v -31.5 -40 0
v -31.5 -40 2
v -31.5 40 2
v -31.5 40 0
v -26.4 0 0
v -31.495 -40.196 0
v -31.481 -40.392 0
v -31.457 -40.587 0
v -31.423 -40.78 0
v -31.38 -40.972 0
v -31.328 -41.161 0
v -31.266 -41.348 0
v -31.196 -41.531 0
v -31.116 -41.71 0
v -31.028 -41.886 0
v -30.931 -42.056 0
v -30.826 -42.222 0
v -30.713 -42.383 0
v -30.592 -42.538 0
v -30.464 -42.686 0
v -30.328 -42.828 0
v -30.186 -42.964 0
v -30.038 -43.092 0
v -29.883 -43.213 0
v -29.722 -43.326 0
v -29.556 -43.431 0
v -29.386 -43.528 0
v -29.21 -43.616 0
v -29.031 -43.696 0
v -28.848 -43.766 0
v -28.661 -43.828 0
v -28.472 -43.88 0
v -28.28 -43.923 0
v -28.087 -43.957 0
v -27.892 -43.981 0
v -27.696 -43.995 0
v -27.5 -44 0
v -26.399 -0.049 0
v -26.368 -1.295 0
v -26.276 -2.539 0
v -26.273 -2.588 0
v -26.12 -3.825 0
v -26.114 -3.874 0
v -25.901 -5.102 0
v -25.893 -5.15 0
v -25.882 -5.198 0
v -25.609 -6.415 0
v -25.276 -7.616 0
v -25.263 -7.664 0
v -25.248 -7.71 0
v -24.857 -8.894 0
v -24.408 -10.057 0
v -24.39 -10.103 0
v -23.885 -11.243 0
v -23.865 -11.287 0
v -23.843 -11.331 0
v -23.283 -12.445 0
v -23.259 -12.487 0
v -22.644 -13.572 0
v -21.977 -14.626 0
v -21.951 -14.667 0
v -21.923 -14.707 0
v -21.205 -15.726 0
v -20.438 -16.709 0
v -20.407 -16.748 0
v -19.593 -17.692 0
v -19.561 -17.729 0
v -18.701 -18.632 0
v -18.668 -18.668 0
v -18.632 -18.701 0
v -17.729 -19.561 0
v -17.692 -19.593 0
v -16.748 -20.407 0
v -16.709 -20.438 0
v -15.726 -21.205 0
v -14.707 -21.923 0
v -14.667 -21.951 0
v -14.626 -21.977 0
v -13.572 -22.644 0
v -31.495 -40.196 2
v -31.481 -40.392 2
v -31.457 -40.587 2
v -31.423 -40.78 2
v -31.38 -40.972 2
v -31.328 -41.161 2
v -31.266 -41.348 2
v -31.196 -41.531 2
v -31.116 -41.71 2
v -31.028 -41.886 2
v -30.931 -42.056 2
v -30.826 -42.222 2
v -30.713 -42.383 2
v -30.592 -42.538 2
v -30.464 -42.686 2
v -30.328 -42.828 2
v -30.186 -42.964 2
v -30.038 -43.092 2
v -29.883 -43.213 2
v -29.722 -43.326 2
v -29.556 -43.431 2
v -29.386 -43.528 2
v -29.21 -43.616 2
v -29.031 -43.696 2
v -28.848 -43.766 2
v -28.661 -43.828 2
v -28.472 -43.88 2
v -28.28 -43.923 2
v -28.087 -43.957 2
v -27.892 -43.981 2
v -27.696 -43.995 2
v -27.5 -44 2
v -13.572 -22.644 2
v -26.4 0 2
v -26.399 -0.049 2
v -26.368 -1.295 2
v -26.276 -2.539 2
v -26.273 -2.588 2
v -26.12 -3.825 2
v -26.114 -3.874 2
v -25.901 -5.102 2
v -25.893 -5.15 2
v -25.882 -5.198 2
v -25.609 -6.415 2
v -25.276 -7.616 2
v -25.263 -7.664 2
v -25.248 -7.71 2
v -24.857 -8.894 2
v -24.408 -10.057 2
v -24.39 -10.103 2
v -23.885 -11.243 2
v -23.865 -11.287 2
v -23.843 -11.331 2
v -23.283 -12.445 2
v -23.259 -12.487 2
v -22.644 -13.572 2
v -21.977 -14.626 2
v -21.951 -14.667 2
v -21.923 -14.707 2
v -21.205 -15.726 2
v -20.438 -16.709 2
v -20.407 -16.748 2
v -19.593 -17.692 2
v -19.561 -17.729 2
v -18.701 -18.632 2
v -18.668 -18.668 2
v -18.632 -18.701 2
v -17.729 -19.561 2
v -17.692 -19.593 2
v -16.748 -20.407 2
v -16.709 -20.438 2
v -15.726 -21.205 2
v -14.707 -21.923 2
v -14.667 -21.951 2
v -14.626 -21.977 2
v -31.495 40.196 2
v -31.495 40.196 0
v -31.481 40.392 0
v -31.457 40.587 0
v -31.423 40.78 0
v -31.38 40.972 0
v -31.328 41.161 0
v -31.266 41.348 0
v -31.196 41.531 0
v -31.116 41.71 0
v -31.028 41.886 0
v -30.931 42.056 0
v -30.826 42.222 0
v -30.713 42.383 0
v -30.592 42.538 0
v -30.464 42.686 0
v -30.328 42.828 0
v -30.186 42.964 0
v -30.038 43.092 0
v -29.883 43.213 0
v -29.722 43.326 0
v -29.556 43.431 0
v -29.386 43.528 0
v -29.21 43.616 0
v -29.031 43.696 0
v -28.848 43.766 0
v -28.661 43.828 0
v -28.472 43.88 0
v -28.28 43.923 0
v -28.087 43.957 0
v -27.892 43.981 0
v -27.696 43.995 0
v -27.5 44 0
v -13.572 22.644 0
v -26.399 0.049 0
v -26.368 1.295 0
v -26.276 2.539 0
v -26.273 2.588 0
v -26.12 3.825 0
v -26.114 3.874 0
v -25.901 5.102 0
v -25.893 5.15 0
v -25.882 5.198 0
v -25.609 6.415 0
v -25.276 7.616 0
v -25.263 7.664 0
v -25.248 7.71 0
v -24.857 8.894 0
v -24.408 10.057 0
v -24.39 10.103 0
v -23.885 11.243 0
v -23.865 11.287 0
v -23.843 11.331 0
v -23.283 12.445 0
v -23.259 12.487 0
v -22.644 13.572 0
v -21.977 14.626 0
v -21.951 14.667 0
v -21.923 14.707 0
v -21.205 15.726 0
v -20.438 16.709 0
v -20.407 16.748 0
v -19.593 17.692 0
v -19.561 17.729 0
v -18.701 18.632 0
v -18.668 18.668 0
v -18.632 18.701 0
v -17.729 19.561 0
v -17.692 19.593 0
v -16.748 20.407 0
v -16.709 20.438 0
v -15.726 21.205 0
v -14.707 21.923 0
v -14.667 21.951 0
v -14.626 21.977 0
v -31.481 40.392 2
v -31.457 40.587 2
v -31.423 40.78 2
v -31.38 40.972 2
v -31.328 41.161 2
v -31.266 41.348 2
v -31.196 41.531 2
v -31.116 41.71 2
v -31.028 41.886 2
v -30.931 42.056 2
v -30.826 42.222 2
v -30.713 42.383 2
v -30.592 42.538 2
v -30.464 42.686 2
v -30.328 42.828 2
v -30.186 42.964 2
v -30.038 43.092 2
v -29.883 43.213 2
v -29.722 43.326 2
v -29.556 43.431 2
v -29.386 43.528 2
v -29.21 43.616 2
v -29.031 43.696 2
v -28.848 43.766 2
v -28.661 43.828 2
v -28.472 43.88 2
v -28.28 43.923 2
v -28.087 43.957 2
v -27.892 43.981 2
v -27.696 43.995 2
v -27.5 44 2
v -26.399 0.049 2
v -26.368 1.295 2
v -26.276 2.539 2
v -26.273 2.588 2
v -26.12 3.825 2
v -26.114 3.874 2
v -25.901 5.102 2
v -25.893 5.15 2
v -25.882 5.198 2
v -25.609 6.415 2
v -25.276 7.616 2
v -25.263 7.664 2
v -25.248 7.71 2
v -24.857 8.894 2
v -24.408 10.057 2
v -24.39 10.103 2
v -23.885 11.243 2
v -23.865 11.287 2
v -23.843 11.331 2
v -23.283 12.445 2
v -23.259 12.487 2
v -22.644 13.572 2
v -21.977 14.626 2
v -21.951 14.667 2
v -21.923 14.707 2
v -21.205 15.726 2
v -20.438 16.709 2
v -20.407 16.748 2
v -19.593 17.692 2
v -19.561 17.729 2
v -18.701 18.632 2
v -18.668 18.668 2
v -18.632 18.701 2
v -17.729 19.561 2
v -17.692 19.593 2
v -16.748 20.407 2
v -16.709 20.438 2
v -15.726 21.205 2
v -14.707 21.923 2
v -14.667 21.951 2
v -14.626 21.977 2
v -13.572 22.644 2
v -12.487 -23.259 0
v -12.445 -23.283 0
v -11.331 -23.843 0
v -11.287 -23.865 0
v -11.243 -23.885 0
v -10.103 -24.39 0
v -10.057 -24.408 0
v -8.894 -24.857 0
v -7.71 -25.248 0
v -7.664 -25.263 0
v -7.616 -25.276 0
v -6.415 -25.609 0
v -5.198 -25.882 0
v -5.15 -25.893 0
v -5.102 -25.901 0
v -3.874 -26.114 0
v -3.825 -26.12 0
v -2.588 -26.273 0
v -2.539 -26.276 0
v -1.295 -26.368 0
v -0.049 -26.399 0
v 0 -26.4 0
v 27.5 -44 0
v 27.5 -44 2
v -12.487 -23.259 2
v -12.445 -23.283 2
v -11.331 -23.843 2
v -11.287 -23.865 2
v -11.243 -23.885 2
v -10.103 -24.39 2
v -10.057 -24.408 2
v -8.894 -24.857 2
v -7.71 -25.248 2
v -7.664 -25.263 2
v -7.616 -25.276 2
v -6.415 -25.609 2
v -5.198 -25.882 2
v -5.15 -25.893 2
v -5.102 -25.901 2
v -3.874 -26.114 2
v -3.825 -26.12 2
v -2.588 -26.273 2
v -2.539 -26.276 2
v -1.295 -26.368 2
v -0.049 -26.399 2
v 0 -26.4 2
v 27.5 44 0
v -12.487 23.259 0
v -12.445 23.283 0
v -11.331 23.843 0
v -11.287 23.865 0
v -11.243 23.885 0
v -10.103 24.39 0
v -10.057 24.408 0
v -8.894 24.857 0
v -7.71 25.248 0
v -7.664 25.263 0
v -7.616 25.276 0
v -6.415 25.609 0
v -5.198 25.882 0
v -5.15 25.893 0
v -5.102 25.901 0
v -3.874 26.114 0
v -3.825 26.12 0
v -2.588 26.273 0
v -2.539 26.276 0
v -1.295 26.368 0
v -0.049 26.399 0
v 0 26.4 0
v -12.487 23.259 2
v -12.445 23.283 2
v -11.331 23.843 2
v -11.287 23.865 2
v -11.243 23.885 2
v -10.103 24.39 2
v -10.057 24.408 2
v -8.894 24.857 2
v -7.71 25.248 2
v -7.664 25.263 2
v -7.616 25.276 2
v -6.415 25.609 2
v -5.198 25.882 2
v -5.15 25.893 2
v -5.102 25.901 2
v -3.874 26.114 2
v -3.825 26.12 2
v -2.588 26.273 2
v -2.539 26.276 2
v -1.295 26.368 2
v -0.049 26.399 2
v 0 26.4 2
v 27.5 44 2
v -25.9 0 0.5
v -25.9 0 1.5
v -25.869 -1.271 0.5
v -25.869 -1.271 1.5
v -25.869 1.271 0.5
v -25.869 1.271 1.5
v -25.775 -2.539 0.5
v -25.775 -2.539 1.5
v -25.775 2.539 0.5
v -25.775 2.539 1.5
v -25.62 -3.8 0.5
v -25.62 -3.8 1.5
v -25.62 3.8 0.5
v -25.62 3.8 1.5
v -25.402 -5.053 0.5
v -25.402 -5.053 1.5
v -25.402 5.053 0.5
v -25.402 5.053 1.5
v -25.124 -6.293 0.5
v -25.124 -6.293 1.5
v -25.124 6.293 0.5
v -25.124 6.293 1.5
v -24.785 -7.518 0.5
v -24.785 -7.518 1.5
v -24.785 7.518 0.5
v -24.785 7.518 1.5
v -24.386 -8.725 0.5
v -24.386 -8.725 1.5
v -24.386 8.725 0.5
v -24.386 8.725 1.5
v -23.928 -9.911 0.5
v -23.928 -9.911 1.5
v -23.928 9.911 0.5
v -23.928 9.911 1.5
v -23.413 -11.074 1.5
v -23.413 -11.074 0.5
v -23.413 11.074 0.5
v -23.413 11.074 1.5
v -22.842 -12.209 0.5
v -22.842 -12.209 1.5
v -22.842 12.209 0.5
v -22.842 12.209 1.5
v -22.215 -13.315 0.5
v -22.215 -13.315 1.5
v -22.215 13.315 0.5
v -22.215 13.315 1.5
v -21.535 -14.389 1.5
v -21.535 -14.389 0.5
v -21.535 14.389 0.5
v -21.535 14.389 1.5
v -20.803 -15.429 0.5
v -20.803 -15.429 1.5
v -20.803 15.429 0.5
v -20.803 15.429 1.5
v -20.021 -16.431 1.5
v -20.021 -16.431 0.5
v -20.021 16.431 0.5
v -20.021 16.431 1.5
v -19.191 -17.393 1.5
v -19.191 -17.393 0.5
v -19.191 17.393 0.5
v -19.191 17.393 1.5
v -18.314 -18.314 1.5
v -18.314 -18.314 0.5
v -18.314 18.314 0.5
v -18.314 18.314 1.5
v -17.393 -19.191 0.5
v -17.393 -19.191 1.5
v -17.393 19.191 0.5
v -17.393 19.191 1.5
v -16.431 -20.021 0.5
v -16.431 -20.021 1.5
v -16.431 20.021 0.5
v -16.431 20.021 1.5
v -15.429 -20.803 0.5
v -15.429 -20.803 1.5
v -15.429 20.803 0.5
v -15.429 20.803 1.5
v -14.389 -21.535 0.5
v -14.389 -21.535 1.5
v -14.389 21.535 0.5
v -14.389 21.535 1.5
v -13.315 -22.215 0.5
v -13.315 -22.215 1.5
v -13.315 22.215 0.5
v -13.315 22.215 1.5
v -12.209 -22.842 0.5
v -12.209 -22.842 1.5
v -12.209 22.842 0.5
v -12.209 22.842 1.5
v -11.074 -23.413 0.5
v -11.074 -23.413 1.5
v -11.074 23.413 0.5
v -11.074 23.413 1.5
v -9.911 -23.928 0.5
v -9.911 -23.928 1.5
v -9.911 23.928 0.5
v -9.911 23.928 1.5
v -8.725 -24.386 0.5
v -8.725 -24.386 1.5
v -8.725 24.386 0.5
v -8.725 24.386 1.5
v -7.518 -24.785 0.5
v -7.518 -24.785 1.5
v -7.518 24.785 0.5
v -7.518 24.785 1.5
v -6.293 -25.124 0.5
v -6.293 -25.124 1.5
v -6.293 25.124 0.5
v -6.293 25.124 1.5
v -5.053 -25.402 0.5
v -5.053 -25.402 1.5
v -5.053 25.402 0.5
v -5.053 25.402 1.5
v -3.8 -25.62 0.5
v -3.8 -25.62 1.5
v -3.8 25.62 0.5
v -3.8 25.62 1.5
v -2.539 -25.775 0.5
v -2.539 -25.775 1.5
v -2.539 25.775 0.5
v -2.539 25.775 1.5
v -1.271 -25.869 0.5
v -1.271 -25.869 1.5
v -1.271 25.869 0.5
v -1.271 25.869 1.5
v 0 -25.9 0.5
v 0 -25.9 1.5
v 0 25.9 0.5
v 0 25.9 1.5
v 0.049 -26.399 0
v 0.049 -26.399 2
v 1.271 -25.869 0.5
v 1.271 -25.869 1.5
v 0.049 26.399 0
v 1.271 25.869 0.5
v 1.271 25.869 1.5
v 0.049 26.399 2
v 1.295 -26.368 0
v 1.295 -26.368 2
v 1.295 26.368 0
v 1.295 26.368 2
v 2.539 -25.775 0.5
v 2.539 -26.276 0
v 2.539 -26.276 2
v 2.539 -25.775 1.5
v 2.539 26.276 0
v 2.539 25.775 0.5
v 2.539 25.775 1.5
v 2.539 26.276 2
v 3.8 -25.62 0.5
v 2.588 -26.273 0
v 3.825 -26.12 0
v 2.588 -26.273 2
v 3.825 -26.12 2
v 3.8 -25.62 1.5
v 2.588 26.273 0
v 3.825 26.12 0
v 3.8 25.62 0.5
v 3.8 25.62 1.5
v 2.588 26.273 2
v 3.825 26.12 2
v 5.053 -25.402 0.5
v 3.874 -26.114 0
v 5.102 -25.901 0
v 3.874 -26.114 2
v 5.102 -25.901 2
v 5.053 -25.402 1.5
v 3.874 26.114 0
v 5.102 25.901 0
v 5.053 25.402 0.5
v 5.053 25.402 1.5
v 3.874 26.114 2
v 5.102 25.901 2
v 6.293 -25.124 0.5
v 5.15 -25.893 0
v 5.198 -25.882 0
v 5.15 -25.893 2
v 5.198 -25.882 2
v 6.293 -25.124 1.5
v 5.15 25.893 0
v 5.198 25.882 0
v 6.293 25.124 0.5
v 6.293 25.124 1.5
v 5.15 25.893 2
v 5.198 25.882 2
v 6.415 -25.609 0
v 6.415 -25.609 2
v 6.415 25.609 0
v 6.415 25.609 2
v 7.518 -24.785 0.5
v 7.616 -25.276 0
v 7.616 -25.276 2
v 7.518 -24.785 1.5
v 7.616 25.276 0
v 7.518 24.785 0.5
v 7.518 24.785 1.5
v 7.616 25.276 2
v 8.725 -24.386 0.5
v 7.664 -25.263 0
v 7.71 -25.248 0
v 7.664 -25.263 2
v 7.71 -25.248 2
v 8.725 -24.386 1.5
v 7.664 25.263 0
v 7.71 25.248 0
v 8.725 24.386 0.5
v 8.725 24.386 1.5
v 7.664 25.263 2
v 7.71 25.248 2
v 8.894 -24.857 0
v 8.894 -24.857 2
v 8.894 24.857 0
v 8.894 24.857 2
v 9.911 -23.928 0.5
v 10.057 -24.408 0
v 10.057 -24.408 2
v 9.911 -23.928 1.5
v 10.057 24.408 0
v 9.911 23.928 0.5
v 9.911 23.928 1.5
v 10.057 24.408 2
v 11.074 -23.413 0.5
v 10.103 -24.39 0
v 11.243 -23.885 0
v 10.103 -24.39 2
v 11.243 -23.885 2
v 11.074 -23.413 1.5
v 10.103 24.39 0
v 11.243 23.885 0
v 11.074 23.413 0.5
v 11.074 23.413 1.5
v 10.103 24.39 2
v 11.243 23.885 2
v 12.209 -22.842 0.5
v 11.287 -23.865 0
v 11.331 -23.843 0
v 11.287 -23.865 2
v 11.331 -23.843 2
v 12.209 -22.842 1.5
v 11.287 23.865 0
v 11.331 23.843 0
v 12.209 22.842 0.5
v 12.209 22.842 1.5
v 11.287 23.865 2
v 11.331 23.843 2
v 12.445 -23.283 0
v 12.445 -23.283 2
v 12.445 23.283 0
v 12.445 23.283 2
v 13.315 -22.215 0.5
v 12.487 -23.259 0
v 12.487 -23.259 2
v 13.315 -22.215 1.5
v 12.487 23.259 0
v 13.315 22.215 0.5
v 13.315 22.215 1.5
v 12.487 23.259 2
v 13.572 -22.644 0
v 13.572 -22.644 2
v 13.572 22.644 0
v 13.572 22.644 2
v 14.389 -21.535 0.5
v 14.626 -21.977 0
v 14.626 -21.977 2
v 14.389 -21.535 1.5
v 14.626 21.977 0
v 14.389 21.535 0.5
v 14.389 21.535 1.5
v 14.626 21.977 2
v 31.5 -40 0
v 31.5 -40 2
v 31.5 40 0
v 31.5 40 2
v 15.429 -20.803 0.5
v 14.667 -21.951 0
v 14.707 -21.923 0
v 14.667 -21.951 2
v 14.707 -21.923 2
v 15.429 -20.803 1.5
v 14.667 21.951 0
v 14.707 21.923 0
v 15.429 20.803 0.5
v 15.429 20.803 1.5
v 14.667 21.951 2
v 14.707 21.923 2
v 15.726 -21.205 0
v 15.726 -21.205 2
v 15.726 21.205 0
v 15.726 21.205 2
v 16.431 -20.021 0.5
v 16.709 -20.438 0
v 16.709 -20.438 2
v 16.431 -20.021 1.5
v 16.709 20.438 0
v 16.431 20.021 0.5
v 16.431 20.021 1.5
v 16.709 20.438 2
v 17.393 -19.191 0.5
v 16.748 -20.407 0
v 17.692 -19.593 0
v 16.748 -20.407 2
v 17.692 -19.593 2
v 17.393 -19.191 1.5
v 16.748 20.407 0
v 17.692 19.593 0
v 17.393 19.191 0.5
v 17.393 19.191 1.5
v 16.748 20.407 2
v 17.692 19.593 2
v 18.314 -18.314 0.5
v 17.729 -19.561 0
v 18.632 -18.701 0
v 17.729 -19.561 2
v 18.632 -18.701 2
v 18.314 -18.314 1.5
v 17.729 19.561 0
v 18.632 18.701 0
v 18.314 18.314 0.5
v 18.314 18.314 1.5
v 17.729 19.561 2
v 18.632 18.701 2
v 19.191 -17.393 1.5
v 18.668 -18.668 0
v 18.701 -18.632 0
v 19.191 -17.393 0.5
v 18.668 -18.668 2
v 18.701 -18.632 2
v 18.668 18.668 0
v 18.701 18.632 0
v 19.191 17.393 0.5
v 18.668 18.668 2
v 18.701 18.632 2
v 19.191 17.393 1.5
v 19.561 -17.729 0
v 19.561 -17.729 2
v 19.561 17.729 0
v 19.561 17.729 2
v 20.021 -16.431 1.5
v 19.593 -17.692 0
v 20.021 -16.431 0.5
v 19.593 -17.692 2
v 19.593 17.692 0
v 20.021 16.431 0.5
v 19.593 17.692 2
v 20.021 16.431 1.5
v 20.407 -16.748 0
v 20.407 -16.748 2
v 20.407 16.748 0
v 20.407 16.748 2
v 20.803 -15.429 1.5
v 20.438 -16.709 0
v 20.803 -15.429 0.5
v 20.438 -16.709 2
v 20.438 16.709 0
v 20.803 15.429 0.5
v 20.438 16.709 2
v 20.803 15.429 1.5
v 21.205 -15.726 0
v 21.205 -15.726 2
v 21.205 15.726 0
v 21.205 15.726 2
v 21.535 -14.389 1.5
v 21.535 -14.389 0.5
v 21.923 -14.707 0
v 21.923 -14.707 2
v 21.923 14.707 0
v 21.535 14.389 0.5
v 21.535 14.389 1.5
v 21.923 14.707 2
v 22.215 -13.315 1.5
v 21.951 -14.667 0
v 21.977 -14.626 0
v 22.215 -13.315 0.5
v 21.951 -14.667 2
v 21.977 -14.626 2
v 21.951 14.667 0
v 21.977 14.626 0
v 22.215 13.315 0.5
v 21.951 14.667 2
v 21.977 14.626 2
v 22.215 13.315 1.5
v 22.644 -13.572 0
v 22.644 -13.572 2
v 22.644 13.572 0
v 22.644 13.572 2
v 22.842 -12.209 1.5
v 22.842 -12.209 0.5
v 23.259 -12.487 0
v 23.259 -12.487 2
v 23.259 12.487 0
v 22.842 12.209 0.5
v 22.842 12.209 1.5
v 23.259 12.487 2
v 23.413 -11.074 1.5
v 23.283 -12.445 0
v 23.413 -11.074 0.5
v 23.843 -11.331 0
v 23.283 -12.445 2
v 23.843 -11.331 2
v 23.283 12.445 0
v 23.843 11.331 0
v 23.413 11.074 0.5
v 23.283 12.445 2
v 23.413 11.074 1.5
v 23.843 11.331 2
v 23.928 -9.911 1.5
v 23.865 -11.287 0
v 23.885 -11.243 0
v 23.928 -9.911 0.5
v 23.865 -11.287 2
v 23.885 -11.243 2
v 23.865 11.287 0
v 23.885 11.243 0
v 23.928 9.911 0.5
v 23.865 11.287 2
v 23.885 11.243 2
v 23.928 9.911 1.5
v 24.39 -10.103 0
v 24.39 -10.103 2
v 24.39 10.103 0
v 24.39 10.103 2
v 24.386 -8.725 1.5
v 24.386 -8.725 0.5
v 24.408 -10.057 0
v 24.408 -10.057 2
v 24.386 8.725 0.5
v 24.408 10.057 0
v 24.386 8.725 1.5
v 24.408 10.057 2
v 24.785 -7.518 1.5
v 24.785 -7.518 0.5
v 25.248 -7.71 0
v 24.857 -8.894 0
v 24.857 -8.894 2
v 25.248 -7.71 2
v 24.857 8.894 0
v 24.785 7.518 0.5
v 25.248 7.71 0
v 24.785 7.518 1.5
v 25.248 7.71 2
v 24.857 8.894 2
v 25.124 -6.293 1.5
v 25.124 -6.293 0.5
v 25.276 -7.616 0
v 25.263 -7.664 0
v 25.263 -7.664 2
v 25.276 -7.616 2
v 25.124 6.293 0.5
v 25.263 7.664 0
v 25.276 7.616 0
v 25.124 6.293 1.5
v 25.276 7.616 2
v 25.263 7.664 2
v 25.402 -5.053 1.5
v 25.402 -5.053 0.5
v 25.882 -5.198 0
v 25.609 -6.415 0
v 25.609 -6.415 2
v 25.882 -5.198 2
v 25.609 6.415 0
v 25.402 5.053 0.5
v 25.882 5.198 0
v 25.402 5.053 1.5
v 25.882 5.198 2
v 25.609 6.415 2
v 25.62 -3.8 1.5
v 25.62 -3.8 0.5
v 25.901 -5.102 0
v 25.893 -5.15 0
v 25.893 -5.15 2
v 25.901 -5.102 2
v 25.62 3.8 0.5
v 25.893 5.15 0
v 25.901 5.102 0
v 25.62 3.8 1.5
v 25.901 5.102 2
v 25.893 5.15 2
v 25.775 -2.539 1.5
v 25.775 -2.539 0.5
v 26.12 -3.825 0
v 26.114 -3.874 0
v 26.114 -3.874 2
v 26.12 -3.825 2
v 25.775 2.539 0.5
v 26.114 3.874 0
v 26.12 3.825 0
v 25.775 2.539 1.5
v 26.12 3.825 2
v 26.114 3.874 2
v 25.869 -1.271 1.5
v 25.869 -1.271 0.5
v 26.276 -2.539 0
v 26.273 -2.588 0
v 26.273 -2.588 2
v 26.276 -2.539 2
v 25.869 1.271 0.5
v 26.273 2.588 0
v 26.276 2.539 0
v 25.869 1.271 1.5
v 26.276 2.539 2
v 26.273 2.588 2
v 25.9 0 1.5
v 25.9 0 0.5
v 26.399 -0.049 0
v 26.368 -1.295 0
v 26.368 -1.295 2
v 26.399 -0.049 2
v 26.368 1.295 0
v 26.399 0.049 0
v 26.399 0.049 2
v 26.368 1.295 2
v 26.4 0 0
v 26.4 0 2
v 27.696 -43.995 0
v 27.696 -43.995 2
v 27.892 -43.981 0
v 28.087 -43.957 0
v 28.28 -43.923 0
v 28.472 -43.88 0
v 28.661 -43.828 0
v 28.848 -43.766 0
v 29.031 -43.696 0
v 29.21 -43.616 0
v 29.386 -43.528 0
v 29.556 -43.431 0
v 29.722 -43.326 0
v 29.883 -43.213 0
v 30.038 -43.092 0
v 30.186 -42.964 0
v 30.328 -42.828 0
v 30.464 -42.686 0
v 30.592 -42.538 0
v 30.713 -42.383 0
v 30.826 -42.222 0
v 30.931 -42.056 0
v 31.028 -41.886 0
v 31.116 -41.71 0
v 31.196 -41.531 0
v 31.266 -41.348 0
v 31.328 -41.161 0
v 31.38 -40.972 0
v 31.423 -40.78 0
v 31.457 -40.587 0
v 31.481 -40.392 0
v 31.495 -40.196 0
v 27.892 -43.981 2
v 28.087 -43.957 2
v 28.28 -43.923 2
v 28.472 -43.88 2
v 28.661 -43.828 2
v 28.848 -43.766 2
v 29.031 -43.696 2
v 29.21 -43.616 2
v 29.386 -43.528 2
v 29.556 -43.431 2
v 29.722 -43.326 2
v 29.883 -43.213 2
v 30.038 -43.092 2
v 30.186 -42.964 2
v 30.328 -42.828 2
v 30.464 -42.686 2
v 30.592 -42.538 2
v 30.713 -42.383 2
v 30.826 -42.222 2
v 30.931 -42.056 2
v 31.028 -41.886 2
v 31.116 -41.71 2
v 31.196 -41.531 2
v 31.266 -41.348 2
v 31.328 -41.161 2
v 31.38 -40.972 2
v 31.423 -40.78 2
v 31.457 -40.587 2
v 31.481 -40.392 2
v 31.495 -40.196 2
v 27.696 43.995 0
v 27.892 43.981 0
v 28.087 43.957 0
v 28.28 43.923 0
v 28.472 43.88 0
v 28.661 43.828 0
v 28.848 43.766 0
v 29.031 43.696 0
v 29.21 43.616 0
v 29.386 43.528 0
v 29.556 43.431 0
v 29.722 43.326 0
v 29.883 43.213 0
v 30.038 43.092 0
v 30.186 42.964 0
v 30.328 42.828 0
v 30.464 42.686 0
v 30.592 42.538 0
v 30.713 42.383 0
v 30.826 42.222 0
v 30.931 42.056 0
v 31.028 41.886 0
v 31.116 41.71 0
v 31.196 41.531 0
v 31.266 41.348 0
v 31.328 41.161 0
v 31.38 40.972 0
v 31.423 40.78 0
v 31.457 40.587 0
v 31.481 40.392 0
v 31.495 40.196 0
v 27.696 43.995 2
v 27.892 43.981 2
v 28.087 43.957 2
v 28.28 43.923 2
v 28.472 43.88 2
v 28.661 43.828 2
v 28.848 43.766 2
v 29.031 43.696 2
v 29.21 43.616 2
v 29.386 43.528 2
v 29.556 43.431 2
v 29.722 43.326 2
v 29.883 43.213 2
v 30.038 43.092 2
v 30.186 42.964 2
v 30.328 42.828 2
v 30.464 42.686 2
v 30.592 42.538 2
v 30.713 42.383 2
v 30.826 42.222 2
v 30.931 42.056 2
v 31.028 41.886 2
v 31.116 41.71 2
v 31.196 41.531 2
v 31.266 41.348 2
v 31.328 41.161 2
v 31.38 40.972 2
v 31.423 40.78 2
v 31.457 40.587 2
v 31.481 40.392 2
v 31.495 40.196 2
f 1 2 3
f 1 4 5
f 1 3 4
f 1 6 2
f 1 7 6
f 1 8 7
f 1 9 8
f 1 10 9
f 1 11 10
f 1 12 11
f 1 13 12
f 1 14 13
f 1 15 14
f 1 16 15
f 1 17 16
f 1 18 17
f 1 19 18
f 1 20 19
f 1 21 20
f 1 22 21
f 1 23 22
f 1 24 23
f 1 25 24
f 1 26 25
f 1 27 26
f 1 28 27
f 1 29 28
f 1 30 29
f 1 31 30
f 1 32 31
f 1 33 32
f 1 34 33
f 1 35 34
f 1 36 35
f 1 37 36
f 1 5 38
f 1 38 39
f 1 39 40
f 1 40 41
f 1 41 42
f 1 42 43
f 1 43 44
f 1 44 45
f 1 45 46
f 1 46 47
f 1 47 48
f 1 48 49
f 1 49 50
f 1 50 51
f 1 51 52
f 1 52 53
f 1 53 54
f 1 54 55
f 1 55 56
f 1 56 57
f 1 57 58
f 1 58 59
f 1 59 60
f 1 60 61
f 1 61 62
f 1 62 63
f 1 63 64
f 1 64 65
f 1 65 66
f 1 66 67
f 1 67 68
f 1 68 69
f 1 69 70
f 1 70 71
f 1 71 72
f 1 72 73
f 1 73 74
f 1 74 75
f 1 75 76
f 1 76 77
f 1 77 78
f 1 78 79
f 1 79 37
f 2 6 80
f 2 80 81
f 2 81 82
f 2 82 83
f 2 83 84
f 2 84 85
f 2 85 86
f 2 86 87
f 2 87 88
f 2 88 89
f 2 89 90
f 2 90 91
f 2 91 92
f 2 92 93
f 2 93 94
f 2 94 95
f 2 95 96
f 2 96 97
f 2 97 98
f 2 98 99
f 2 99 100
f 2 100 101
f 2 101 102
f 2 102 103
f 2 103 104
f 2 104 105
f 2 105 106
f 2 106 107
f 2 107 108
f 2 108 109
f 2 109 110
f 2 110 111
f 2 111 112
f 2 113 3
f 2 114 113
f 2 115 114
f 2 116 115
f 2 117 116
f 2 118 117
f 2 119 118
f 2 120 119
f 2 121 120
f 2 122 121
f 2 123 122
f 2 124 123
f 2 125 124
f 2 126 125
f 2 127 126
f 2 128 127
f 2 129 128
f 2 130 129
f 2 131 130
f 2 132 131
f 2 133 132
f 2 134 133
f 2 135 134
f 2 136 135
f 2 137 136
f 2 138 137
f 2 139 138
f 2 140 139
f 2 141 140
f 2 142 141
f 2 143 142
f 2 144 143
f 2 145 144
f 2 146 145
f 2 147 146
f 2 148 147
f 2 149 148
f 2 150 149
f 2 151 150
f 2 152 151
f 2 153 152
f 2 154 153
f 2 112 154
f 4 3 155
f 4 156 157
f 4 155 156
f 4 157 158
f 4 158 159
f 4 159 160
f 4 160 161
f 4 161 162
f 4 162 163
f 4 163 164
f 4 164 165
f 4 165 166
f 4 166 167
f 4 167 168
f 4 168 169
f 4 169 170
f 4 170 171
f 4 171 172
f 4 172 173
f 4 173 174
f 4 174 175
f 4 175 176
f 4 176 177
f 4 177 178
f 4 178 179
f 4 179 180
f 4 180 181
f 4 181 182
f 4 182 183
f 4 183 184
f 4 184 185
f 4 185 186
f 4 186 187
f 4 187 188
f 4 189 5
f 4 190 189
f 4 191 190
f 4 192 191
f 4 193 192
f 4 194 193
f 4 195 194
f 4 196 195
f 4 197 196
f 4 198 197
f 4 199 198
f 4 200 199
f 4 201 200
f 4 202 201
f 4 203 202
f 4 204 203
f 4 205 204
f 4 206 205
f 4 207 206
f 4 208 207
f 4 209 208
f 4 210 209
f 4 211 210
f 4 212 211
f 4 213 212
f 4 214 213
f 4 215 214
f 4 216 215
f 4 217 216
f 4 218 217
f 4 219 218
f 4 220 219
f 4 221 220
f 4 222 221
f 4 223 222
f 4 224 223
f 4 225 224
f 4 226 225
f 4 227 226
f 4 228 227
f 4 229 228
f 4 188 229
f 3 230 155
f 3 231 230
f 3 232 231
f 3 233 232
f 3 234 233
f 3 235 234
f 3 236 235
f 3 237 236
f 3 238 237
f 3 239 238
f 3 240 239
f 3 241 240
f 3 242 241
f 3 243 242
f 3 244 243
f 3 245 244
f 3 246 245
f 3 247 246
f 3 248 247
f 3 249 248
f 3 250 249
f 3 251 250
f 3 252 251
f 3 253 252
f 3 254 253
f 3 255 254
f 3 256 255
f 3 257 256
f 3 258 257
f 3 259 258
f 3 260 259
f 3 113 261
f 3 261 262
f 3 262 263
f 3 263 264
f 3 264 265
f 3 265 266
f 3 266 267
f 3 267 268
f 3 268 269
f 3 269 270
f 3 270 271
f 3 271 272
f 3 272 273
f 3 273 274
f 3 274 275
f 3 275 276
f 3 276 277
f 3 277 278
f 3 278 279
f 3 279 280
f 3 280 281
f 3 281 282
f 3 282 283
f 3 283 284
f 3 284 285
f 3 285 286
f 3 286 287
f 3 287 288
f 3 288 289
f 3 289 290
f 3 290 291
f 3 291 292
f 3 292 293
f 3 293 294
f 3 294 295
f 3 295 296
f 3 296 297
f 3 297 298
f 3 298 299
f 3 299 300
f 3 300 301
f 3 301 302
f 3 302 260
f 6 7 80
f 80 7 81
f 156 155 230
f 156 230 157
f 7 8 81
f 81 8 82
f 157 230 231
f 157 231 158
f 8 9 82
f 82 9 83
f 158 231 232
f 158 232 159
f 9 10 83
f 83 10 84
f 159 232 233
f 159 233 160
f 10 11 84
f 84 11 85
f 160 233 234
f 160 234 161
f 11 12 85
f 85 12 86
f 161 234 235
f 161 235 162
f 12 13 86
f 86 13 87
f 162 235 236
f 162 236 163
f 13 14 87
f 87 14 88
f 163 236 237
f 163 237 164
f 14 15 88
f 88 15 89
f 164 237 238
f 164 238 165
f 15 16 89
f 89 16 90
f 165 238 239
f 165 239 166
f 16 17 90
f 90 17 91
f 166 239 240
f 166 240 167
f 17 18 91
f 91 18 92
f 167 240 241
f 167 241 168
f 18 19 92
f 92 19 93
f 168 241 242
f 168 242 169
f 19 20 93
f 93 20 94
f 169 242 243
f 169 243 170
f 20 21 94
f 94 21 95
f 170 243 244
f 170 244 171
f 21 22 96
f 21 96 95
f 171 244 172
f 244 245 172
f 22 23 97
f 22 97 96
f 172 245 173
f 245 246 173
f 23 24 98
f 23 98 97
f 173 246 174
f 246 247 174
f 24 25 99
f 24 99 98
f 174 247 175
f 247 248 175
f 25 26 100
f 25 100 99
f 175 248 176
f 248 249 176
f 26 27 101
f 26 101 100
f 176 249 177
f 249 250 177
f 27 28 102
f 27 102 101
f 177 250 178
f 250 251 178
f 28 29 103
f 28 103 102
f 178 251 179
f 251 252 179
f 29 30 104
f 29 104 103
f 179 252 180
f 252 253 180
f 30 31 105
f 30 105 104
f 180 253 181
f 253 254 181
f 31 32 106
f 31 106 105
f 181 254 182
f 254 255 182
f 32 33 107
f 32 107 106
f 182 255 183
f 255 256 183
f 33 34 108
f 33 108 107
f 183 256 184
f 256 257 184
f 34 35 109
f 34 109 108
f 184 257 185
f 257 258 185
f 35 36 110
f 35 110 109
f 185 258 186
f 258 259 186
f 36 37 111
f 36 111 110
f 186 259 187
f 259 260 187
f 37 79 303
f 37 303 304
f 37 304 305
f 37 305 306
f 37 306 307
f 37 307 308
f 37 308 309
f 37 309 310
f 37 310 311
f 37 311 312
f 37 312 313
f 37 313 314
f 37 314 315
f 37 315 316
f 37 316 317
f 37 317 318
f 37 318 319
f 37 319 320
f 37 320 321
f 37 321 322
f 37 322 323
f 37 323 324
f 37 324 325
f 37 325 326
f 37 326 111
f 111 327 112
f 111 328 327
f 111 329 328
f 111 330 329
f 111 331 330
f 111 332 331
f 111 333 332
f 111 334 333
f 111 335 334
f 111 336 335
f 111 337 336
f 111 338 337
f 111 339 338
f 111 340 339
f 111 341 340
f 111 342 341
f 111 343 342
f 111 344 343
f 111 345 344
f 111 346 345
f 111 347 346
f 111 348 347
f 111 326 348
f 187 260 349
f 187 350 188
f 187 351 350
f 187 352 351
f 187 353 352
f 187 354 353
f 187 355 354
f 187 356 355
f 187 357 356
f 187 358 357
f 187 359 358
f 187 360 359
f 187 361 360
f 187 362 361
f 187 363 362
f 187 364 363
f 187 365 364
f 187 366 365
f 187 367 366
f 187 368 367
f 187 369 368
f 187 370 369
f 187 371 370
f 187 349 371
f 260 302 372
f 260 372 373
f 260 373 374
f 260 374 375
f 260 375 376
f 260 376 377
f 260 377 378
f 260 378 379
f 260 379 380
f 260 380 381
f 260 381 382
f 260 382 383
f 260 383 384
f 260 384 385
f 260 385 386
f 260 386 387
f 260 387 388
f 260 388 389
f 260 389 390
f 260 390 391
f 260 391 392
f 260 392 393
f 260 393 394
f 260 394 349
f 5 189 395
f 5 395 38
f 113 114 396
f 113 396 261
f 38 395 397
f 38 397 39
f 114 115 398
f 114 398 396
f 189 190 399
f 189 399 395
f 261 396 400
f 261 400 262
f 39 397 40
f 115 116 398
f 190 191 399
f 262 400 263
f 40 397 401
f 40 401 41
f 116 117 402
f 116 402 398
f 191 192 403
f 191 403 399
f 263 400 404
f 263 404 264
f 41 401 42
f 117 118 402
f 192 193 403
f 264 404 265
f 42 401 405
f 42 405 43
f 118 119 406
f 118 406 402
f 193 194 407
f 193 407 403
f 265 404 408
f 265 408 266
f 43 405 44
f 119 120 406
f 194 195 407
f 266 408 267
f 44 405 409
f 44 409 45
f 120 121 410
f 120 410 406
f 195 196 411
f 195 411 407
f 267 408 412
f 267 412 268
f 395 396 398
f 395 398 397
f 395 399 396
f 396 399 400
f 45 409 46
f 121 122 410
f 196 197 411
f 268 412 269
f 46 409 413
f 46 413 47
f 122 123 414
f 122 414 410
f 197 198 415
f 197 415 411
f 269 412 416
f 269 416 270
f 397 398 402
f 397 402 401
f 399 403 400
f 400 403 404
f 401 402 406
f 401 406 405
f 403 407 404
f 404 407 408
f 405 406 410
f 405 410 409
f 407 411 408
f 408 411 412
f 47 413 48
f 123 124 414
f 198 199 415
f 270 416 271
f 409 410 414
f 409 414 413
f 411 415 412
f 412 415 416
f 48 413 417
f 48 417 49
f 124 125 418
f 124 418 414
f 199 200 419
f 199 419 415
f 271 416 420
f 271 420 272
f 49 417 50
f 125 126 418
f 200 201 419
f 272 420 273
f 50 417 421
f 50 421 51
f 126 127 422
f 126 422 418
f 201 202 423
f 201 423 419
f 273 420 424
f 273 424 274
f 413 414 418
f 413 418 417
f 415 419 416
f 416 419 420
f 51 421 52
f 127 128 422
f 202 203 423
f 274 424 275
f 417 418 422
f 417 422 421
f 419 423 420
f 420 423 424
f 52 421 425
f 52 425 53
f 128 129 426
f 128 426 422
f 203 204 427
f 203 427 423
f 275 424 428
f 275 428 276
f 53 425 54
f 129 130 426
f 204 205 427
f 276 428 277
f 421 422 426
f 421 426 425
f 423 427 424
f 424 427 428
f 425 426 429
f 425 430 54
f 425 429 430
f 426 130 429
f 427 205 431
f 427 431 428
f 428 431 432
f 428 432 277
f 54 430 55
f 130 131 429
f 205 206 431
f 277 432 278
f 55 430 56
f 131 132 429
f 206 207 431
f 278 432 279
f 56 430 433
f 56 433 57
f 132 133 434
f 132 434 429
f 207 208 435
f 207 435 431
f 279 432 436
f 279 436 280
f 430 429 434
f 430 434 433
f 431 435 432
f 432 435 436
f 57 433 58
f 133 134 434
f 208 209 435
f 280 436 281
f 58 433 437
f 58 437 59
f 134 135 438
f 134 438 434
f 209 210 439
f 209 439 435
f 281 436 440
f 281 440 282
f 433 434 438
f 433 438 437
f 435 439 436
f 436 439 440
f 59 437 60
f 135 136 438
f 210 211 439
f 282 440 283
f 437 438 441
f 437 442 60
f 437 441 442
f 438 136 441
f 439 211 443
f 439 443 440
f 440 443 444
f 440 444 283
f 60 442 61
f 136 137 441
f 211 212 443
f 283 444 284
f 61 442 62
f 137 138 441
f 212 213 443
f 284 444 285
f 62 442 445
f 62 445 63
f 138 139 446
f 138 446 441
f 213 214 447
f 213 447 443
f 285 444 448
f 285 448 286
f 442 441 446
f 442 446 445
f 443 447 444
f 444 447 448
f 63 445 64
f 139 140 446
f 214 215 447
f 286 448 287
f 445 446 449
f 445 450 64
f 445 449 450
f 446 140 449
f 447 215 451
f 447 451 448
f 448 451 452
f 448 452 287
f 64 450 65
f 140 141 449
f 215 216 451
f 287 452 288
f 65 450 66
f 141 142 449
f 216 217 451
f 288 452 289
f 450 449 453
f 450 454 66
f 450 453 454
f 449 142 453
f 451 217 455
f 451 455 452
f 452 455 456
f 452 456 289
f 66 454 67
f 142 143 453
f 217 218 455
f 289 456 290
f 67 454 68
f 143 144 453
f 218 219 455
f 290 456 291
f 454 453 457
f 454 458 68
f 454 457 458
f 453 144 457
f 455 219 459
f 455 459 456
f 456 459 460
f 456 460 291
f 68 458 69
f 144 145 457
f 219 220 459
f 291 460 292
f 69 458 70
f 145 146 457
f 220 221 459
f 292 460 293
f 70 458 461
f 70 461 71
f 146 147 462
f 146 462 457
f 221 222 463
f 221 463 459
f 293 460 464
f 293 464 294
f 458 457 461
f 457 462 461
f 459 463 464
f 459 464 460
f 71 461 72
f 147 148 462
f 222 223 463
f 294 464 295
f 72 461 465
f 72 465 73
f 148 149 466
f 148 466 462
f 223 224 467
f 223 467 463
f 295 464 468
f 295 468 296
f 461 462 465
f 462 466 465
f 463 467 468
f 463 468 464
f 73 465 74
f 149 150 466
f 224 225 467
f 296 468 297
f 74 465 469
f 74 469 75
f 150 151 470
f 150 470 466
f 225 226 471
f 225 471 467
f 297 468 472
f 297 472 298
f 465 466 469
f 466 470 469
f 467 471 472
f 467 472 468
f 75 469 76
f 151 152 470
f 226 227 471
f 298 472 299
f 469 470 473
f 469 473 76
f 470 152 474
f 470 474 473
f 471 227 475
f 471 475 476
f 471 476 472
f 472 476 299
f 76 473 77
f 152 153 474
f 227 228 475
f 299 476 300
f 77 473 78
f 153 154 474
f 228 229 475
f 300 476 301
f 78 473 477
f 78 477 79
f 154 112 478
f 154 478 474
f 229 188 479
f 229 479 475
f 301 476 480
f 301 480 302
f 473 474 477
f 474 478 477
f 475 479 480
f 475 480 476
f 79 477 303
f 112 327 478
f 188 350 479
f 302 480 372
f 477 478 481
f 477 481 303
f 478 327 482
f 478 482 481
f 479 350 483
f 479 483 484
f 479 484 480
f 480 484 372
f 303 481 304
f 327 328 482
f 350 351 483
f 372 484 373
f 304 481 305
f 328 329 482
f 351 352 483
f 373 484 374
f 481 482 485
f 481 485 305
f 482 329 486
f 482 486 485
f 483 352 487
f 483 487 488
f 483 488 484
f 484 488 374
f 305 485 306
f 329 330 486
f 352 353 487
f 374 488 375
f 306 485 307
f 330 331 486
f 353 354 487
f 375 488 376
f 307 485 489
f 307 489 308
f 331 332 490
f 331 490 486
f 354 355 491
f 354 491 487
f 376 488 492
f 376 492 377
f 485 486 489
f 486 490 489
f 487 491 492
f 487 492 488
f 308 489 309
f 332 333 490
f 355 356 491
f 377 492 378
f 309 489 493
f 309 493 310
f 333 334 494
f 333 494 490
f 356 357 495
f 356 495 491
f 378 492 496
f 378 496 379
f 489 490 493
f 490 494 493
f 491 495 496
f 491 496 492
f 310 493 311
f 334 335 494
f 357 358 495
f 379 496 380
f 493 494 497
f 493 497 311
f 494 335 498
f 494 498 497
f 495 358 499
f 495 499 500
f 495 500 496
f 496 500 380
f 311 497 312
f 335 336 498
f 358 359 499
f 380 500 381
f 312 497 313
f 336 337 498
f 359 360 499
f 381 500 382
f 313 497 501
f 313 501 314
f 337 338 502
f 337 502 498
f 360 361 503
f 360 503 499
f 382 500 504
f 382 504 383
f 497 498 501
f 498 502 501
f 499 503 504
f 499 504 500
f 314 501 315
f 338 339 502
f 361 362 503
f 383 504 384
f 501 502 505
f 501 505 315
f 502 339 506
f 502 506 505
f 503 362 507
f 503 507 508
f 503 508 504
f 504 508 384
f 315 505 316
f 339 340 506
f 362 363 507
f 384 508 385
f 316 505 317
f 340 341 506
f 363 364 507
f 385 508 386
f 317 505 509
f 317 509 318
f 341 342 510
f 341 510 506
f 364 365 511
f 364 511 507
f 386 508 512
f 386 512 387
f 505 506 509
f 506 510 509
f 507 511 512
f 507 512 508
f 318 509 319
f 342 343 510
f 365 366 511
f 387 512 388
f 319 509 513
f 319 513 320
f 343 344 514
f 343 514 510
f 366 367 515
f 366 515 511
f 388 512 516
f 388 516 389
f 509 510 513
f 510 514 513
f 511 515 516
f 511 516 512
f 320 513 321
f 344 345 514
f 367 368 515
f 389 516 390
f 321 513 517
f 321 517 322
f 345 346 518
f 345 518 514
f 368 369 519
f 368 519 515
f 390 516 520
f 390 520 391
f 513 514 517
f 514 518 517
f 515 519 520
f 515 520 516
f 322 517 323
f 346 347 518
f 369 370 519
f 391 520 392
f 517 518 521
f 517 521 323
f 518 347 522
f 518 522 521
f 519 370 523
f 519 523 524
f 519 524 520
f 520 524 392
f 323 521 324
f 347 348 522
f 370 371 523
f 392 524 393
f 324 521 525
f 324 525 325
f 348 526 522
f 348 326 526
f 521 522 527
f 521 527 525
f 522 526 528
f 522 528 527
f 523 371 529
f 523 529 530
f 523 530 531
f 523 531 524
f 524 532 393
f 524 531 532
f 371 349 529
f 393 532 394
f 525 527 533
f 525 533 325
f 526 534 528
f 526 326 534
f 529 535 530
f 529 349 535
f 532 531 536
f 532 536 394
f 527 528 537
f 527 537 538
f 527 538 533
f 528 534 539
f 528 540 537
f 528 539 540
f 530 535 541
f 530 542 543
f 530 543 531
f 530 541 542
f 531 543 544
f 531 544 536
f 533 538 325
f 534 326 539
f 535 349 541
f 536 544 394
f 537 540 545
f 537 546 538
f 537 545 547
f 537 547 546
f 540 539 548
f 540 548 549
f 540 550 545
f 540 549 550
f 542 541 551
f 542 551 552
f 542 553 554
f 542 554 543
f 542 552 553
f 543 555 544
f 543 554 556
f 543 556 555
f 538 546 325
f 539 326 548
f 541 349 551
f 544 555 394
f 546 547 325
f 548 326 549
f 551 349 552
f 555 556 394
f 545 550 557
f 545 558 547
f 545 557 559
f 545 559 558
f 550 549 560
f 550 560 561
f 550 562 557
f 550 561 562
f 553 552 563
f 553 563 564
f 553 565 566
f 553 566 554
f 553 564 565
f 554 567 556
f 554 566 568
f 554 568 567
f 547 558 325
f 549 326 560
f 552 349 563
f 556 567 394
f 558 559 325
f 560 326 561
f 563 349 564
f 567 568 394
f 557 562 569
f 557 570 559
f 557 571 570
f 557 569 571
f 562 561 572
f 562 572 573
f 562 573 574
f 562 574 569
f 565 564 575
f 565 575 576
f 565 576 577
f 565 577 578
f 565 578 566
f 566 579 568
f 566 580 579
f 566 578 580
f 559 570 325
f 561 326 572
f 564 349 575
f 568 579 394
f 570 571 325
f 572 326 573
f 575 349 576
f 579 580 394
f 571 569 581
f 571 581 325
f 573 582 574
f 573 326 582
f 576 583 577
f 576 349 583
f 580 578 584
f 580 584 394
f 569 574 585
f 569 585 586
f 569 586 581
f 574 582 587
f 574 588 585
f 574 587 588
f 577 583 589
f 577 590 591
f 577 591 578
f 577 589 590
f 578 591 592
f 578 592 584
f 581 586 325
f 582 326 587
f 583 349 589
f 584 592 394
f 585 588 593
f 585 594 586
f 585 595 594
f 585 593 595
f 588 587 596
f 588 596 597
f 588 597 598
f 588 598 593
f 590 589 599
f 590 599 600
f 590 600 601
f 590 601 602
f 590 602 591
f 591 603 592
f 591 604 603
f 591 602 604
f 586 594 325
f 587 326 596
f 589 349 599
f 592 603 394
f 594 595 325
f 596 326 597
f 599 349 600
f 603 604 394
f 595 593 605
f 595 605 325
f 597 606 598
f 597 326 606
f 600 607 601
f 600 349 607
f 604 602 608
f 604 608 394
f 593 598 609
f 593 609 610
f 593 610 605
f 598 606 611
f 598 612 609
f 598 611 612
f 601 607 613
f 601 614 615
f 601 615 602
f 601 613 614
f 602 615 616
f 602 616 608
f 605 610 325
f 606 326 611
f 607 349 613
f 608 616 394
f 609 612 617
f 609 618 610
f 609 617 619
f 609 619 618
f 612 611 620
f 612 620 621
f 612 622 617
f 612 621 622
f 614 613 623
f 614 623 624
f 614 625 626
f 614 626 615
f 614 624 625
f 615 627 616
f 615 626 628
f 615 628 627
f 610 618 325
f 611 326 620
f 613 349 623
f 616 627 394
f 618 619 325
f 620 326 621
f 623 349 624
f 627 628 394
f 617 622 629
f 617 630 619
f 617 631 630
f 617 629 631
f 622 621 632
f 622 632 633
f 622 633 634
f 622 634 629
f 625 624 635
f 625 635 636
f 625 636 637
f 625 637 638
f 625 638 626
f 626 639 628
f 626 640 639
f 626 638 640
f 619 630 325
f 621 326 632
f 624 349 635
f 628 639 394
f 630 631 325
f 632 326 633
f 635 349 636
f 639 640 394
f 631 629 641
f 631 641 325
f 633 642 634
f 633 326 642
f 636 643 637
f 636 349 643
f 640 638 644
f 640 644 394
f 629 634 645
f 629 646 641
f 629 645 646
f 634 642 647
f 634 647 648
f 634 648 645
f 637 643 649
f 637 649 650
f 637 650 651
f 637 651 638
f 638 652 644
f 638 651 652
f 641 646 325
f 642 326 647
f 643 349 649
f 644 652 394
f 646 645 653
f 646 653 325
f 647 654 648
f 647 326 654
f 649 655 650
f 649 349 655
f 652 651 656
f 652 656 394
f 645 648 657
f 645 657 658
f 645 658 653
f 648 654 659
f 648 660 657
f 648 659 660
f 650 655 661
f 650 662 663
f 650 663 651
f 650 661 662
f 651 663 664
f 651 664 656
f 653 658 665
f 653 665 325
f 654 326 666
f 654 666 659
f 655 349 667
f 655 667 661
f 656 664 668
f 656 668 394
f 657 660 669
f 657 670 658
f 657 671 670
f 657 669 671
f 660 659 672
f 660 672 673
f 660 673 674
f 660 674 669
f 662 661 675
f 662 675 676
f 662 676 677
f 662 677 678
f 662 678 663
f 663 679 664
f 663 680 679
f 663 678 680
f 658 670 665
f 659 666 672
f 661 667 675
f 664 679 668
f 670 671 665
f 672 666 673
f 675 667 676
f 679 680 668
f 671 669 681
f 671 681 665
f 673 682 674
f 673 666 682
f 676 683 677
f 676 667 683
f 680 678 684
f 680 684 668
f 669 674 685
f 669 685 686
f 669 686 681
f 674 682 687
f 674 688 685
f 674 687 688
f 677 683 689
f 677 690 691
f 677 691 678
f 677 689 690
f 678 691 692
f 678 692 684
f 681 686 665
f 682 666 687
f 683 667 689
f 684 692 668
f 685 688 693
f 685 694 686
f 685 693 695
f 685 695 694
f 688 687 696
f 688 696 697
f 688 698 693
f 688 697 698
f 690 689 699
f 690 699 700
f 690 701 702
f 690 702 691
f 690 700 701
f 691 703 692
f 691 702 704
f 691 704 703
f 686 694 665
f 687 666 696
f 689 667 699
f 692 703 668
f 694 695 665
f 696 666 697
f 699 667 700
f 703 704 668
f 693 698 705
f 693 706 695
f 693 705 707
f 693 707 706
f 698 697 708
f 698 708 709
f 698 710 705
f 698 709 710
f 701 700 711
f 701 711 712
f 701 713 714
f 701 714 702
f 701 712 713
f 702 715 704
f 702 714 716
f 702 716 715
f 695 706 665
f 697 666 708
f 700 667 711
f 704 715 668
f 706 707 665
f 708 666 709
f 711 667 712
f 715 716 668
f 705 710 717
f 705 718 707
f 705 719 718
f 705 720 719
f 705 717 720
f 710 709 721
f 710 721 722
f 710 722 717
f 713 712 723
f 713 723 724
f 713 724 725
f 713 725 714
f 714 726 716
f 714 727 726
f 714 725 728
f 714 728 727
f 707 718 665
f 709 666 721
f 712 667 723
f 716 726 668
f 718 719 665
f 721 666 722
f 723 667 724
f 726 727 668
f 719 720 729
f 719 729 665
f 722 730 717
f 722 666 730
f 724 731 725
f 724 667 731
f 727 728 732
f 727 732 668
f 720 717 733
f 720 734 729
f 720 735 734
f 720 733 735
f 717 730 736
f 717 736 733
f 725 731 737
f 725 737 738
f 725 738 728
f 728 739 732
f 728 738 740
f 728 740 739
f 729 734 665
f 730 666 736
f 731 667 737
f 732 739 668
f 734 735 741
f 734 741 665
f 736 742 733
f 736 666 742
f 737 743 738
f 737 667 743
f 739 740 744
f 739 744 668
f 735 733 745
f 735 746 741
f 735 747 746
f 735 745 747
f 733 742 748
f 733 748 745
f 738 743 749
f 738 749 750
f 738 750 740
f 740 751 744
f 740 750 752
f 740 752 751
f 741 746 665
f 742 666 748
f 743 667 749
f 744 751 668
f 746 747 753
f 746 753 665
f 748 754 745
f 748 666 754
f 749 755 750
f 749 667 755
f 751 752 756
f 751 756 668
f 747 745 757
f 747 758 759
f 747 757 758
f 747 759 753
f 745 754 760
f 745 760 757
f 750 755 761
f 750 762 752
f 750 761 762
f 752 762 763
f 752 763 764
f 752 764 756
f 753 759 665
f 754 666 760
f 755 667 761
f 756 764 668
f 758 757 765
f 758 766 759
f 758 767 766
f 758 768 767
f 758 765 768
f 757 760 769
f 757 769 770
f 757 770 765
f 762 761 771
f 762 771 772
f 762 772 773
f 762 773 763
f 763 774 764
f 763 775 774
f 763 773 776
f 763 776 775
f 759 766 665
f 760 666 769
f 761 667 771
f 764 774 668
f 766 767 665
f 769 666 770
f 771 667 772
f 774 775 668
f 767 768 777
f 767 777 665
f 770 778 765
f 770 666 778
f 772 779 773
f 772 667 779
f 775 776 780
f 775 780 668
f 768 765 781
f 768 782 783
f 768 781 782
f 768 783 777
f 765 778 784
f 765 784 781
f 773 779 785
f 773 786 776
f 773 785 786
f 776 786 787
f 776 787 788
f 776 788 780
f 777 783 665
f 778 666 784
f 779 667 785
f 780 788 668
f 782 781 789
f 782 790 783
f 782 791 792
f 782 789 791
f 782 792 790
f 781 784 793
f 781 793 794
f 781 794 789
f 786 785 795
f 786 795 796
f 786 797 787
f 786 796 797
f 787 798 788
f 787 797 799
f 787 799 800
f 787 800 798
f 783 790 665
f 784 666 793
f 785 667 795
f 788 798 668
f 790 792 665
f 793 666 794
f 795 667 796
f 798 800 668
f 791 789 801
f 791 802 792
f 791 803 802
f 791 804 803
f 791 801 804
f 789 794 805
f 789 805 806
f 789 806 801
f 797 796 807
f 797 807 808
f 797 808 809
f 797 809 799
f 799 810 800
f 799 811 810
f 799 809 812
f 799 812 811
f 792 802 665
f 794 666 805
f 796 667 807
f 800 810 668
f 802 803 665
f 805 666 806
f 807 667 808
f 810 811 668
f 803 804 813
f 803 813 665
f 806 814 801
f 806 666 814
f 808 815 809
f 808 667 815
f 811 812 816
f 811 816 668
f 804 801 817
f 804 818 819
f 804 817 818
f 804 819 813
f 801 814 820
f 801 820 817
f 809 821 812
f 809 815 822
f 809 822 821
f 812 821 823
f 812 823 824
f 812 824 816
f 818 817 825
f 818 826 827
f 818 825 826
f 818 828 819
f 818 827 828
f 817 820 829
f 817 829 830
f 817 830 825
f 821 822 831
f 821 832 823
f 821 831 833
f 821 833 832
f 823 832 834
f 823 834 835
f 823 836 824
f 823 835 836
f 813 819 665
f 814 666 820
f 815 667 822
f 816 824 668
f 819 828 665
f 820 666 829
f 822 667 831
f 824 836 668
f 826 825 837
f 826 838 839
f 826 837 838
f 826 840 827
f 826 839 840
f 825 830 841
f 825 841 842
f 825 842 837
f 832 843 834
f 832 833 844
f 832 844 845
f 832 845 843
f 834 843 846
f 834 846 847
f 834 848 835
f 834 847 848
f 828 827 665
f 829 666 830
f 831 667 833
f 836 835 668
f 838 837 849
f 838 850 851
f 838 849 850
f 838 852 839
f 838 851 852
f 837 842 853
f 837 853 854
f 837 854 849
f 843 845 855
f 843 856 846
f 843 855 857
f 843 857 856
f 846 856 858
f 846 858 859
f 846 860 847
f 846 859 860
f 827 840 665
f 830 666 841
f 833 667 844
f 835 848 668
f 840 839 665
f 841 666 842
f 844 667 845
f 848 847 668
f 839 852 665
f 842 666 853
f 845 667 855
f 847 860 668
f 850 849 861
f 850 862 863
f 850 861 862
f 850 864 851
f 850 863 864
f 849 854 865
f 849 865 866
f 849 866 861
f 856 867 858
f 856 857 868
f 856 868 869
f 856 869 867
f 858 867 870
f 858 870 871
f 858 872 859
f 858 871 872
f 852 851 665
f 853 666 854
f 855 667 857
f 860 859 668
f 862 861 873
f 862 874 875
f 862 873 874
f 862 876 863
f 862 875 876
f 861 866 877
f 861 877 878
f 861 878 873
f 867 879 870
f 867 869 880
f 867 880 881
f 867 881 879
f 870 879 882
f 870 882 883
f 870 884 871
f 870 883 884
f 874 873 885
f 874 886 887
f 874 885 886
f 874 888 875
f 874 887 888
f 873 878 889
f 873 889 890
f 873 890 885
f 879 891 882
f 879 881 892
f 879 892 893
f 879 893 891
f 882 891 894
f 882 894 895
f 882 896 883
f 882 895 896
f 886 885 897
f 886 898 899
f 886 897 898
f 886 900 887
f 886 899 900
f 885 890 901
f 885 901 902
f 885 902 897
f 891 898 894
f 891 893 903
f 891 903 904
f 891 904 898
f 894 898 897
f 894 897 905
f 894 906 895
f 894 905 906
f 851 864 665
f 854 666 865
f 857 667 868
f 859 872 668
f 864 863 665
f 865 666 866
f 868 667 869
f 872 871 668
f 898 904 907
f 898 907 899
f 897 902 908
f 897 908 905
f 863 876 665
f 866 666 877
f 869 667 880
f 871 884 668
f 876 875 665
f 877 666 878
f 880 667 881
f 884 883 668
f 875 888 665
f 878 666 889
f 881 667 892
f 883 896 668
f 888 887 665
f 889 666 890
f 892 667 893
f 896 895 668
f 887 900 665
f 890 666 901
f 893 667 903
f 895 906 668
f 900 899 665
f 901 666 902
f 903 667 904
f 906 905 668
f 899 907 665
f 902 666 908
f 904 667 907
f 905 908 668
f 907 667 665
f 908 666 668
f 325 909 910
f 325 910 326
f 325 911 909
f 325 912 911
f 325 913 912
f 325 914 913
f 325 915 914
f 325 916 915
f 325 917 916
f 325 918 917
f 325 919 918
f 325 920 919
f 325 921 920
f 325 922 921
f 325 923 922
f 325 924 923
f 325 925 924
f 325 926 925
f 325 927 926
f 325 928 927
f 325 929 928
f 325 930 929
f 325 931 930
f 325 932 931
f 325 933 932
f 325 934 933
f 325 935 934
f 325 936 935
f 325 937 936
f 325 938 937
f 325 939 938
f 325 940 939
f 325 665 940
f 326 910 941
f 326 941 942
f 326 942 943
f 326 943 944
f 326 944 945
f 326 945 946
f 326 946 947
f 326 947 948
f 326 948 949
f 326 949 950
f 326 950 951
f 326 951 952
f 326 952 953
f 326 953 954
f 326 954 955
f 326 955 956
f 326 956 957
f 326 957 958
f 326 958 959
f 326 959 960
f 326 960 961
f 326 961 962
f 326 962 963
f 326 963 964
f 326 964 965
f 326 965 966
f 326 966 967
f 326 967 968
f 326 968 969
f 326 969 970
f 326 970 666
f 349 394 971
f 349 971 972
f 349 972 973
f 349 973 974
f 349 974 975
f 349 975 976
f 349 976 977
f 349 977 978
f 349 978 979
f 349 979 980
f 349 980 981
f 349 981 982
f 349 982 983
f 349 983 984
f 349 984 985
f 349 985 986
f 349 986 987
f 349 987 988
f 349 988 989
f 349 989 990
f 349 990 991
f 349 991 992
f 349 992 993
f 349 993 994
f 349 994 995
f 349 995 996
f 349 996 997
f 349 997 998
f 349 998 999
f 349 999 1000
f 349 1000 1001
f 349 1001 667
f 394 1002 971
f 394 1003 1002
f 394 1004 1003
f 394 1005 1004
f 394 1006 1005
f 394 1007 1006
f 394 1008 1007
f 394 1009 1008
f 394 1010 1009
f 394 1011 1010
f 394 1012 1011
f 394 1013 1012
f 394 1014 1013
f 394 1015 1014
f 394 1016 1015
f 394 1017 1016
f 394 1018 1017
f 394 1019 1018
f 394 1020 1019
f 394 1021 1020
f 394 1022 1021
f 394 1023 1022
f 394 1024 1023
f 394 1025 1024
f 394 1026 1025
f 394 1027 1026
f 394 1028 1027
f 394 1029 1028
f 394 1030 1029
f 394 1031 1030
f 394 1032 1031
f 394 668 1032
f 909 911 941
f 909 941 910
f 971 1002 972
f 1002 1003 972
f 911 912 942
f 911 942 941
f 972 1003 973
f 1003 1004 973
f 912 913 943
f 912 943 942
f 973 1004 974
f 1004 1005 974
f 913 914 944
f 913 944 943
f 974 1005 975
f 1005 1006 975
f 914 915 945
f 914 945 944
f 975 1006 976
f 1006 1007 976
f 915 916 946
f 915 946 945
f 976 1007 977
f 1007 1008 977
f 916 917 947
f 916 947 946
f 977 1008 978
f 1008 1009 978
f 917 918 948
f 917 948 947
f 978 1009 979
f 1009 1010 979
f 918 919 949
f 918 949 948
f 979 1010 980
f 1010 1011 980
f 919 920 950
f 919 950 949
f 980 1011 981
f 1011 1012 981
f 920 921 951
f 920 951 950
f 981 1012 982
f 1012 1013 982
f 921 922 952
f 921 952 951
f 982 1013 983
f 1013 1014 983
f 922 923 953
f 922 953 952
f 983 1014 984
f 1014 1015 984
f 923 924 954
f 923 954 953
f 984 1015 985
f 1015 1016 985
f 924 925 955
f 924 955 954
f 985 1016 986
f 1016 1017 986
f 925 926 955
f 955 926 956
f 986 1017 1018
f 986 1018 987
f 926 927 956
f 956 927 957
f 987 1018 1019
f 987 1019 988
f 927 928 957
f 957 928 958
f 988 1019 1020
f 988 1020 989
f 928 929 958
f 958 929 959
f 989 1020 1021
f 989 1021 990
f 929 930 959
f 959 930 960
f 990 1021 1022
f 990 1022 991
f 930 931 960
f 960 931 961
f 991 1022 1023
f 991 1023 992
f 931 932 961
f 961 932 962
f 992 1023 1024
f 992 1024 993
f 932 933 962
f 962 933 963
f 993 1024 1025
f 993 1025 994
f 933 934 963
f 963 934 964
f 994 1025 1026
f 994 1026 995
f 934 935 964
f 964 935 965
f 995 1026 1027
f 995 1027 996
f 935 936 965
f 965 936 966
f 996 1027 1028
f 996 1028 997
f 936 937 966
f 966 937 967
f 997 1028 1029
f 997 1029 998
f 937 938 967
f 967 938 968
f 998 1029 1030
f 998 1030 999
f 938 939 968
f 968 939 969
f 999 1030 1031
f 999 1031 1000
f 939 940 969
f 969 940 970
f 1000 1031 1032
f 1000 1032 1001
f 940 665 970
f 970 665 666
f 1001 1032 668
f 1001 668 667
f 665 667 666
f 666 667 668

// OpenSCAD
// pokemon-coin-binder-01.scad
// Insert em formato de carta para guardar uma moeda Pokemon grande em uma
// pagina plastica 3x3 de fichario. A moeda e o insert ficam lado a lado no
// mesmo plano: a folha plastica segura as duas faces, e o aro apenas centra a
// moeda e preenche o restante do bolso.
//
// Medida real fornecida pelo usuario em 2026-08-23:
//   moeda = diametro 51.4 mm x espessura 2.7 mm
//
// Exports canonicos (usar caminhos absolutos nesta maquina):
//   flatpak run org.openscad.OpenSCAD -o stl/pokemon-coin-binder-01.stl \
//     -D 'part="holder"' pokemon-coin-binder-01.scad
//   flatpak run org.openscad.OpenSCAD -o 3mf/pokemon-coin-binder-01.3mf \
//     -D 'part="holder"' pokemon-coin-binder-01.scad
//   flatpak run org.openscad.OpenSCAD -o 3mf/pokemon-coin-binder-01-x3.3mf \
//     -D 'part="plate3"' pokemon-coin-binder-01.scad

/* [Peca a renderizar] */
part = "holder"; // "holder" (1 insert) | "plate3" (3 inserts na A1 mini)

/* [Moeda - medida real] */
coin_d = 51.4;       // mm, diametro medido pelo usuario
coin_t = 2.7;        // mm, documentacao; nao soma na altura do insert
radial_clear = 0.20; // mm por lado: abertura central = 51.8 mm

/* [Insert formato carta Pokemon] */
card_w = 63;       // mm
card_h = 88;       // mm
holder_t = 2.0;    // mm; a moeda sobressai 0.35 mm de cada face
corner_r = 4.0;    // mm

/* [Acabamento da abertura] */
edge_chamfer = 0.5; // mm em cada face, facilita alinhar moeda + insert na folha

/* [Chapa de impressao] */
plate_gap = 2.0; // mm entre inserts; plate3 = 153 x 128 mm

/* [Qualidade] */
$fn = 128;
eps = 0.02;

// --------------------------------------------------------------------------
// Derivados e guardas
// --------------------------------------------------------------------------
opening_d = coin_d + 2 * radial_clear;
surface_opening_d = opening_d + 2 * edge_chamfer;
rim_min = min(card_w, card_h) / 2 - surface_opening_d / 2;

plate_w = card_w + plate_gap + card_h;
plate_h = 2 * card_w + plate_gap;

assert(holder_t > 2 * edge_chamfer,
       "holder_t precisa ser maior que duas vezes edge_chamfer");
assert(corner_r > 0 && corner_r <= min(card_w, card_h) / 2,
       "corner_r invalido");
assert(rim_min >= 4.5,
       "Aro lateral ficou estreito demais para uma pagina de fichario");

echo(str("pokemon-coin-binder-01: moeda Ø", coin_d, " x ", coin_t, " mm"));
echo(str("  insert ", card_w, " x ", card_h, " x ", holder_t,
         " mm | abertura Ø", opening_d, " mm | folga radial ", radial_clear, " mm"));
echo(str("  aro minimo ", rim_min, " mm | plate3 ", plate_w, " x ", plate_h,
         " x ", holder_t, " mm"));

// --------------------------------------------------------------------------
// Geometria
// --------------------------------------------------------------------------
module rounded_card_2d() {
    offset(r = corner_r)
        square([card_w - 2 * corner_r, card_h - 2 * corner_r], center = true);
}

// A garganta cilindrica tem Ø51.8. Os 0.5 mm de cada face abrem em 45 graus
// ate Ø52.8 para eliminar aresta viva e guiar a moeda. A abertura e maior que
// a moeda de proposito: este NAO e um snap-fit; a pagina plastica e que retem.
module coin_opening() {
    union() {
        translate([0, 0, -eps])
            cylinder(h = edge_chamfer + eps,
                     d1 = surface_opening_d + 2 * eps,
                     d2 = opening_d);

        translate([0, 0, edge_chamfer - eps])
            cylinder(h = holder_t - 2 * edge_chamfer + 2 * eps,
                     d = opening_d);

        translate([0, 0, holder_t - edge_chamfer])
            cylinder(h = edge_chamfer + eps,
                     d1 = opening_d,
                     d2 = surface_opening_d + 2 * eps);
    }
}

module holder() {
    difference() {
        linear_extrude(height = holder_t)
            rounded_card_2d();
        coin_opening();
    }
}

// Packing assimetrico para manter tudo dentro do limite confortavel de
// 170x170 da A1 mini: um insert retrato a esquerda e dois paisagem a direita.
module plate3() {
    translate([-plate_w / 2, -plate_h / 2, 0]) {
        translate([card_w / 2, plate_h / 2, 0])
            holder();

        for (y = [card_w / 2, card_w + plate_gap + card_w / 2])
            translate([card_w + plate_gap + card_h / 2, y, 0])
                rotate([0, 0, 90])
                    holder();
    }
}

if (part == "holder")
    holder();
else if (part == "plate3")
    plate3();
else
    assert(false, str("part desconhecido: ", part));
